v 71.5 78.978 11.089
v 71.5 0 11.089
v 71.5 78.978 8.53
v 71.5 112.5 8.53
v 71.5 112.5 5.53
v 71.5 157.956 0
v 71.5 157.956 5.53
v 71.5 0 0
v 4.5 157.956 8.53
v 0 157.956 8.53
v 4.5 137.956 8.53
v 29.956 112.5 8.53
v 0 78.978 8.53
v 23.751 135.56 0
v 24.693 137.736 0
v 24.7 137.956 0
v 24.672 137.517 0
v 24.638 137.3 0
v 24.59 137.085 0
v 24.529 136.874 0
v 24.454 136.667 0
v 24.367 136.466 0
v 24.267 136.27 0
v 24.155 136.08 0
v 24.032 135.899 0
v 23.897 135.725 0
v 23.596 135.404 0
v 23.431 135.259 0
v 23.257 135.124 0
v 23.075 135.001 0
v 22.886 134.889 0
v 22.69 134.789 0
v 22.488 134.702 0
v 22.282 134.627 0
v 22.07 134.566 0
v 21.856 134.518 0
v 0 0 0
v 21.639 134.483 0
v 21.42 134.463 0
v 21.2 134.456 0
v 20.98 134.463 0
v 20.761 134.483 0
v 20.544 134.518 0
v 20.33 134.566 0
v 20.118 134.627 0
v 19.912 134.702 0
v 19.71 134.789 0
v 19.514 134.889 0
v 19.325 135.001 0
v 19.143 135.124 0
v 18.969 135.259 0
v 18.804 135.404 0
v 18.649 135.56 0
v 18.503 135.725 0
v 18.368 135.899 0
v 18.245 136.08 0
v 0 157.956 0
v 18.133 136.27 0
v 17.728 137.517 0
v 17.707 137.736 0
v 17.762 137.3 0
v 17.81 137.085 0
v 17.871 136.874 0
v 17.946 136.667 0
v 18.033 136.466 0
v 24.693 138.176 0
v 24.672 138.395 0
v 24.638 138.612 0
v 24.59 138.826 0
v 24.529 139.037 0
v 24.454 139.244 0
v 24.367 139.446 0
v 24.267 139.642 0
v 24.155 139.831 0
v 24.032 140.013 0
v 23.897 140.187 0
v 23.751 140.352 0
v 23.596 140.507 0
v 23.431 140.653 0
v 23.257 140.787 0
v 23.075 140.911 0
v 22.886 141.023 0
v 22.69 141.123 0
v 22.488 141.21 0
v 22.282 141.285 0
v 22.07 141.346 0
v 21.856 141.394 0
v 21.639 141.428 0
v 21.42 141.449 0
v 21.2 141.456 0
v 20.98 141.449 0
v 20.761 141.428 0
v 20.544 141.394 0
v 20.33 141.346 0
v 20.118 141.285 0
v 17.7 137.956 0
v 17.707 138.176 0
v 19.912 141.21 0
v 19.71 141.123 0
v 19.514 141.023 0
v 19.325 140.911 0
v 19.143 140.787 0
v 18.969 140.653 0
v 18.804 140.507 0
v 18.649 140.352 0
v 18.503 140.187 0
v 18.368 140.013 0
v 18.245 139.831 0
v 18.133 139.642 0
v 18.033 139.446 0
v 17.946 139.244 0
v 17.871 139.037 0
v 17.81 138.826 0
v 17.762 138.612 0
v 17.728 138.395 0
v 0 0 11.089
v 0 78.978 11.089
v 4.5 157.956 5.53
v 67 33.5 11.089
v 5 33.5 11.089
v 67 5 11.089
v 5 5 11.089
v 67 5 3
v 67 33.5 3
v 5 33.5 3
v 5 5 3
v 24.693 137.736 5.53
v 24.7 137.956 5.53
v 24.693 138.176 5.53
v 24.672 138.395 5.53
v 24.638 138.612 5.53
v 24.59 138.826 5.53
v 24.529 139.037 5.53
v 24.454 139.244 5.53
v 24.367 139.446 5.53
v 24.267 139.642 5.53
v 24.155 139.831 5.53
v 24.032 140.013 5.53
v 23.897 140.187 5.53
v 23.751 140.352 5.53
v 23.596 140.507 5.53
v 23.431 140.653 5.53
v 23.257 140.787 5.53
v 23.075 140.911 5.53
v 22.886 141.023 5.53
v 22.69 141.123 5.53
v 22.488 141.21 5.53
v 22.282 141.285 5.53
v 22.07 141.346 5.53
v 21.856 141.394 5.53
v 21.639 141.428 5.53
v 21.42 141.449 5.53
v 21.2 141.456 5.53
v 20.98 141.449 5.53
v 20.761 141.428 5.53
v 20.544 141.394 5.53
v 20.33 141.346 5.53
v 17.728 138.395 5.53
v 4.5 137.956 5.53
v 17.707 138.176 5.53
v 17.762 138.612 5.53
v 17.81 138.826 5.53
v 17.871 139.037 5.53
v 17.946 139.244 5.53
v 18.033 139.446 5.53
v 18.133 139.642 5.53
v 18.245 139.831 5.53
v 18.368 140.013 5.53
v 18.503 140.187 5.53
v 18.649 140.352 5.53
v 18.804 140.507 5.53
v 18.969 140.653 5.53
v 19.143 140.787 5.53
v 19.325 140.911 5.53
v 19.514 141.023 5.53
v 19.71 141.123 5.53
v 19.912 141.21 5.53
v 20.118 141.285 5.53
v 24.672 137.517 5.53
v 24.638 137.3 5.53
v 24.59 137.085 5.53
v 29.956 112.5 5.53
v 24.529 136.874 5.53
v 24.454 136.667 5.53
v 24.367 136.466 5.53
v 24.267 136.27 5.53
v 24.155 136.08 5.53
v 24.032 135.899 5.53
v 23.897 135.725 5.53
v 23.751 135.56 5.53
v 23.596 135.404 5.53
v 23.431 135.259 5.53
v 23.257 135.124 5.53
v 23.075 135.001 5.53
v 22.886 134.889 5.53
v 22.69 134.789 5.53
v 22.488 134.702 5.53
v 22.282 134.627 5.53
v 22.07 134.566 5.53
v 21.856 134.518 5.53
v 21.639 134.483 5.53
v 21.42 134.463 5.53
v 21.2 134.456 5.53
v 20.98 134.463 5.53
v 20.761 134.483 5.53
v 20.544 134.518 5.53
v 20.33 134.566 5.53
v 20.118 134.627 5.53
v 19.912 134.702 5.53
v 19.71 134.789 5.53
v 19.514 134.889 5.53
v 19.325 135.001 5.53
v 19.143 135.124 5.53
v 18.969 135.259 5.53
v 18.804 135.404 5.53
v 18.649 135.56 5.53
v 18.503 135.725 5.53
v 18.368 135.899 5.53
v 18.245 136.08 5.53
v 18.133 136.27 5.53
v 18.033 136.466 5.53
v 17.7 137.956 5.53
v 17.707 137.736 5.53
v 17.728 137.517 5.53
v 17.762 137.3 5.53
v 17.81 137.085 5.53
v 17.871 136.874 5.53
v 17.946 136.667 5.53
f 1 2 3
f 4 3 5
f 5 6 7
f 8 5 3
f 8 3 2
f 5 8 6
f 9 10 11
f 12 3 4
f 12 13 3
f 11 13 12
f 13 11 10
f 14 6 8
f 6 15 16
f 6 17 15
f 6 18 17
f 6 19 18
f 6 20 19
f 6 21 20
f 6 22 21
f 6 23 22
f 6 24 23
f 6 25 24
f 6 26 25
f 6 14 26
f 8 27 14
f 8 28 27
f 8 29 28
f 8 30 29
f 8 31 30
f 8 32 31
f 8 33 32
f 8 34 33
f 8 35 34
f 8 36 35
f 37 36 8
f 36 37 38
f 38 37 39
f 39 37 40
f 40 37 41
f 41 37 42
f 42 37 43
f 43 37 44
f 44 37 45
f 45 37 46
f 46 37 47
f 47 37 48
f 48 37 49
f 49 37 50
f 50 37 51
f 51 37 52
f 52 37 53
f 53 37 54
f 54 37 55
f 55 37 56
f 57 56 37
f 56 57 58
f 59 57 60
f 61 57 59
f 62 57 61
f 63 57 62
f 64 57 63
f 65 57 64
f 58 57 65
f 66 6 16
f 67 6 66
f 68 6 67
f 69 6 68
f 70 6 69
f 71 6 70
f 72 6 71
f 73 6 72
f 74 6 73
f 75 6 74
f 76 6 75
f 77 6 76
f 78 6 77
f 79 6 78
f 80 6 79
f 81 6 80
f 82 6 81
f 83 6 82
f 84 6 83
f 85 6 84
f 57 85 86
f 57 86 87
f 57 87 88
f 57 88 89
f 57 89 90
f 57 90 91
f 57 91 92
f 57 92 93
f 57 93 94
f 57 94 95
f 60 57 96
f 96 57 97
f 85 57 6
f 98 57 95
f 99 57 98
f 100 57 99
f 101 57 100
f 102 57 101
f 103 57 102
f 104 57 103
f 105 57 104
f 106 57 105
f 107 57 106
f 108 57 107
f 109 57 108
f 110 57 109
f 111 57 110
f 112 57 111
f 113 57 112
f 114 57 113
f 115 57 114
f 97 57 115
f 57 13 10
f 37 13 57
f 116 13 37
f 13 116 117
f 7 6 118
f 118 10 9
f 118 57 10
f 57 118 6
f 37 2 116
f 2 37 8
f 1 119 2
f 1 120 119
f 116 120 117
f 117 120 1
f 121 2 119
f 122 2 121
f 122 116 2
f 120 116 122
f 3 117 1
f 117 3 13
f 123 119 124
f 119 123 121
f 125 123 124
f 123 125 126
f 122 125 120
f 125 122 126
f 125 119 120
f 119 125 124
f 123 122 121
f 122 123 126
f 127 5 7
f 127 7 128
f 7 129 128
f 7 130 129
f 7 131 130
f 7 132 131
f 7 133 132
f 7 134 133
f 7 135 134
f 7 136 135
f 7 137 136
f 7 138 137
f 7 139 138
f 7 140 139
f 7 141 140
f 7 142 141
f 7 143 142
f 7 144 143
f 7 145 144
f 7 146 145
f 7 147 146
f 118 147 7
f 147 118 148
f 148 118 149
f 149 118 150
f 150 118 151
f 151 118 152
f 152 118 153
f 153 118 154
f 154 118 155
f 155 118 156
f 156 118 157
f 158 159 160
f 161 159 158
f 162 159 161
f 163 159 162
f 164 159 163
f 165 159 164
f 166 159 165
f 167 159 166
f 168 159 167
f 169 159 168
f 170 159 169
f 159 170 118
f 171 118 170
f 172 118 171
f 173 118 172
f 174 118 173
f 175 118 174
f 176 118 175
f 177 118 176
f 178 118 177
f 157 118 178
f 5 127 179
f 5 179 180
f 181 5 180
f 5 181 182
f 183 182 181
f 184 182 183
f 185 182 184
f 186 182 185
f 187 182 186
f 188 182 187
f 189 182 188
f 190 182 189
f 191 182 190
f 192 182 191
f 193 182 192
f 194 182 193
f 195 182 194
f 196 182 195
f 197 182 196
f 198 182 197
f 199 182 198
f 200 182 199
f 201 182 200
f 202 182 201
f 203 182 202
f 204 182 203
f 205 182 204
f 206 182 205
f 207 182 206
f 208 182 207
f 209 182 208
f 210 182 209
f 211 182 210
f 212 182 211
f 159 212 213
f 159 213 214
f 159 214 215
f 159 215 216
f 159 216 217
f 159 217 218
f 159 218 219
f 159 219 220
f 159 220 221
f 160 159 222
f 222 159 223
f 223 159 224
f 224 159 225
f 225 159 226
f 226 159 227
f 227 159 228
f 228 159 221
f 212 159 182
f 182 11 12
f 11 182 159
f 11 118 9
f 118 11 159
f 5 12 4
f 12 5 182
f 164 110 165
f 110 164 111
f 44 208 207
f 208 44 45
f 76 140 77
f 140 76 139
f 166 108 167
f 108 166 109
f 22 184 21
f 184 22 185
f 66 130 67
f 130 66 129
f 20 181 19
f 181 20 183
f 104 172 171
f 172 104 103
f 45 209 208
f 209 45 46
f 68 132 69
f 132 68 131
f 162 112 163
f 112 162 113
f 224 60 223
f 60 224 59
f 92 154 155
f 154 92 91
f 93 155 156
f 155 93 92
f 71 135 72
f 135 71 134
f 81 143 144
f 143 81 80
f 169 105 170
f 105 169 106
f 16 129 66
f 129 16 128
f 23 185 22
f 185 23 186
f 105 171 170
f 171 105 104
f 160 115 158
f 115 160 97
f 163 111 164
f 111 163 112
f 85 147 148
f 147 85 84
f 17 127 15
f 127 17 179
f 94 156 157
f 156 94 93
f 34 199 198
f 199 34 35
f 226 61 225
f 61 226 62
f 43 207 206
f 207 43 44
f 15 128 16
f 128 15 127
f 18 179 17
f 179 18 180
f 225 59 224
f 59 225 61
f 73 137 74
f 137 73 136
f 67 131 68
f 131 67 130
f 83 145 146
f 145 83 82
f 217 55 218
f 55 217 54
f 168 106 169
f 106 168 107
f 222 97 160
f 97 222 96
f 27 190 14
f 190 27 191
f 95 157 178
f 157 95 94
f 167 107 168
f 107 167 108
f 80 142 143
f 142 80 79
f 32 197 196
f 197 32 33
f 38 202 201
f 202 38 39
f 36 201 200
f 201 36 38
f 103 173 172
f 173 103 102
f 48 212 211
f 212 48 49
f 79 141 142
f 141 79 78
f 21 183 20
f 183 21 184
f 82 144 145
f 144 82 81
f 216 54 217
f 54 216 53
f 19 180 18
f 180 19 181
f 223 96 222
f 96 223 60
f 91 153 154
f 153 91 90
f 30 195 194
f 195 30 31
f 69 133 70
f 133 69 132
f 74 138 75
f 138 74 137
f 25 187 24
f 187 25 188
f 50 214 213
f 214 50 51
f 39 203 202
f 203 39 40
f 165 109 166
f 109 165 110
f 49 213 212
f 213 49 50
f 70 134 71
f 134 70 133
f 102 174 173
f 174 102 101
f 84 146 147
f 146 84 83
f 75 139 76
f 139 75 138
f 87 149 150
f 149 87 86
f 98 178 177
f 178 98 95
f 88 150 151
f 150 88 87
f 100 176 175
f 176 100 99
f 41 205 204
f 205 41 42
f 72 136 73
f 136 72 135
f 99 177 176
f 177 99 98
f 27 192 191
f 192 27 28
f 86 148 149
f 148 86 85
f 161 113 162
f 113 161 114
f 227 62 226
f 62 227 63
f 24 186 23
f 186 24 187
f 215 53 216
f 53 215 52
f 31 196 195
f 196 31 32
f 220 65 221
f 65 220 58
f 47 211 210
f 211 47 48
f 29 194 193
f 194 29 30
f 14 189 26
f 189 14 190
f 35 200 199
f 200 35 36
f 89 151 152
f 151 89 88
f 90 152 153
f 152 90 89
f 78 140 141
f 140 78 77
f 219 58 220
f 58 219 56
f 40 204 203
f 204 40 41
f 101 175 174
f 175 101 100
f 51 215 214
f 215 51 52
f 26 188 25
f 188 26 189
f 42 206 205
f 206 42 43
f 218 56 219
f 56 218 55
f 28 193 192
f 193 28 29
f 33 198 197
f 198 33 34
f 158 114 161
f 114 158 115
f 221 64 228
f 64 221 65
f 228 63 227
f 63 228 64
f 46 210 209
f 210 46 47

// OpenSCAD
$fn=100;

logitec_width = 62;  
logitec_depth = 28.5;
logitec_thick = 9.30;
logitec_boarder = 5.0;

hypotenuse_corner = 36.0;
square_corner = sqrt(hypotenuse_corner * hypotenuse_corner / 2) ;
echo ("square_corner = ", square_corner);

area_length = 4.5;
area_1_depth  = 20.0;

prusa_2_camera = 45.0 + 16;
prusa_plate = 3;
prusa_spacer = 5.53;


hole_across = 16.7;
hole_diameter = 6.0 + 1;

box_width = area_length + logitec_boarder + logitec_width;

box_depth =  area_length  + square_corner + prusa_2_camera + logitec_width + logitec_boarder;
box_height =  prusa_plate + prusa_spacer;

difference()
{
    union()
    {
        cube( [box_width, box_depth, box_height] );
        cube( [box_width, box_depth/2, box_height * 1.3] );
    }
    union() {
        translate ( [ logitec_boarder, logitec_boarder, 3 ])
        #cube ( [logitec_width, logitec_depth, logitec_thick]);
    
        translate ( [ area_length, box_depth - area_1_depth, box_height - prusa_plate ])
        rotate( [ 0, 0, -45 ])
        cube ( [hypotenuse_corner, hypotenuse_corner, prusa_plate ]);
        
        translate ( [ area_length, box_depth - area_1_depth , box_height - prusa_plate] )
        cube( [box_width, hypotenuse_corner/2 + 10,  prusa_plate] );

        translate ( [ area_length + square_corner, box_depth - square_corner - area_1_depth, box_height - prusa_plate] )
        #cube( [box_width, square_corner,   prusa_plate] );
        
        translate( [ hole_across + area_length, box_depth - area_1_depth , 0 ])
        cylinder(box_height, d = hole_diameter);

    }
}
